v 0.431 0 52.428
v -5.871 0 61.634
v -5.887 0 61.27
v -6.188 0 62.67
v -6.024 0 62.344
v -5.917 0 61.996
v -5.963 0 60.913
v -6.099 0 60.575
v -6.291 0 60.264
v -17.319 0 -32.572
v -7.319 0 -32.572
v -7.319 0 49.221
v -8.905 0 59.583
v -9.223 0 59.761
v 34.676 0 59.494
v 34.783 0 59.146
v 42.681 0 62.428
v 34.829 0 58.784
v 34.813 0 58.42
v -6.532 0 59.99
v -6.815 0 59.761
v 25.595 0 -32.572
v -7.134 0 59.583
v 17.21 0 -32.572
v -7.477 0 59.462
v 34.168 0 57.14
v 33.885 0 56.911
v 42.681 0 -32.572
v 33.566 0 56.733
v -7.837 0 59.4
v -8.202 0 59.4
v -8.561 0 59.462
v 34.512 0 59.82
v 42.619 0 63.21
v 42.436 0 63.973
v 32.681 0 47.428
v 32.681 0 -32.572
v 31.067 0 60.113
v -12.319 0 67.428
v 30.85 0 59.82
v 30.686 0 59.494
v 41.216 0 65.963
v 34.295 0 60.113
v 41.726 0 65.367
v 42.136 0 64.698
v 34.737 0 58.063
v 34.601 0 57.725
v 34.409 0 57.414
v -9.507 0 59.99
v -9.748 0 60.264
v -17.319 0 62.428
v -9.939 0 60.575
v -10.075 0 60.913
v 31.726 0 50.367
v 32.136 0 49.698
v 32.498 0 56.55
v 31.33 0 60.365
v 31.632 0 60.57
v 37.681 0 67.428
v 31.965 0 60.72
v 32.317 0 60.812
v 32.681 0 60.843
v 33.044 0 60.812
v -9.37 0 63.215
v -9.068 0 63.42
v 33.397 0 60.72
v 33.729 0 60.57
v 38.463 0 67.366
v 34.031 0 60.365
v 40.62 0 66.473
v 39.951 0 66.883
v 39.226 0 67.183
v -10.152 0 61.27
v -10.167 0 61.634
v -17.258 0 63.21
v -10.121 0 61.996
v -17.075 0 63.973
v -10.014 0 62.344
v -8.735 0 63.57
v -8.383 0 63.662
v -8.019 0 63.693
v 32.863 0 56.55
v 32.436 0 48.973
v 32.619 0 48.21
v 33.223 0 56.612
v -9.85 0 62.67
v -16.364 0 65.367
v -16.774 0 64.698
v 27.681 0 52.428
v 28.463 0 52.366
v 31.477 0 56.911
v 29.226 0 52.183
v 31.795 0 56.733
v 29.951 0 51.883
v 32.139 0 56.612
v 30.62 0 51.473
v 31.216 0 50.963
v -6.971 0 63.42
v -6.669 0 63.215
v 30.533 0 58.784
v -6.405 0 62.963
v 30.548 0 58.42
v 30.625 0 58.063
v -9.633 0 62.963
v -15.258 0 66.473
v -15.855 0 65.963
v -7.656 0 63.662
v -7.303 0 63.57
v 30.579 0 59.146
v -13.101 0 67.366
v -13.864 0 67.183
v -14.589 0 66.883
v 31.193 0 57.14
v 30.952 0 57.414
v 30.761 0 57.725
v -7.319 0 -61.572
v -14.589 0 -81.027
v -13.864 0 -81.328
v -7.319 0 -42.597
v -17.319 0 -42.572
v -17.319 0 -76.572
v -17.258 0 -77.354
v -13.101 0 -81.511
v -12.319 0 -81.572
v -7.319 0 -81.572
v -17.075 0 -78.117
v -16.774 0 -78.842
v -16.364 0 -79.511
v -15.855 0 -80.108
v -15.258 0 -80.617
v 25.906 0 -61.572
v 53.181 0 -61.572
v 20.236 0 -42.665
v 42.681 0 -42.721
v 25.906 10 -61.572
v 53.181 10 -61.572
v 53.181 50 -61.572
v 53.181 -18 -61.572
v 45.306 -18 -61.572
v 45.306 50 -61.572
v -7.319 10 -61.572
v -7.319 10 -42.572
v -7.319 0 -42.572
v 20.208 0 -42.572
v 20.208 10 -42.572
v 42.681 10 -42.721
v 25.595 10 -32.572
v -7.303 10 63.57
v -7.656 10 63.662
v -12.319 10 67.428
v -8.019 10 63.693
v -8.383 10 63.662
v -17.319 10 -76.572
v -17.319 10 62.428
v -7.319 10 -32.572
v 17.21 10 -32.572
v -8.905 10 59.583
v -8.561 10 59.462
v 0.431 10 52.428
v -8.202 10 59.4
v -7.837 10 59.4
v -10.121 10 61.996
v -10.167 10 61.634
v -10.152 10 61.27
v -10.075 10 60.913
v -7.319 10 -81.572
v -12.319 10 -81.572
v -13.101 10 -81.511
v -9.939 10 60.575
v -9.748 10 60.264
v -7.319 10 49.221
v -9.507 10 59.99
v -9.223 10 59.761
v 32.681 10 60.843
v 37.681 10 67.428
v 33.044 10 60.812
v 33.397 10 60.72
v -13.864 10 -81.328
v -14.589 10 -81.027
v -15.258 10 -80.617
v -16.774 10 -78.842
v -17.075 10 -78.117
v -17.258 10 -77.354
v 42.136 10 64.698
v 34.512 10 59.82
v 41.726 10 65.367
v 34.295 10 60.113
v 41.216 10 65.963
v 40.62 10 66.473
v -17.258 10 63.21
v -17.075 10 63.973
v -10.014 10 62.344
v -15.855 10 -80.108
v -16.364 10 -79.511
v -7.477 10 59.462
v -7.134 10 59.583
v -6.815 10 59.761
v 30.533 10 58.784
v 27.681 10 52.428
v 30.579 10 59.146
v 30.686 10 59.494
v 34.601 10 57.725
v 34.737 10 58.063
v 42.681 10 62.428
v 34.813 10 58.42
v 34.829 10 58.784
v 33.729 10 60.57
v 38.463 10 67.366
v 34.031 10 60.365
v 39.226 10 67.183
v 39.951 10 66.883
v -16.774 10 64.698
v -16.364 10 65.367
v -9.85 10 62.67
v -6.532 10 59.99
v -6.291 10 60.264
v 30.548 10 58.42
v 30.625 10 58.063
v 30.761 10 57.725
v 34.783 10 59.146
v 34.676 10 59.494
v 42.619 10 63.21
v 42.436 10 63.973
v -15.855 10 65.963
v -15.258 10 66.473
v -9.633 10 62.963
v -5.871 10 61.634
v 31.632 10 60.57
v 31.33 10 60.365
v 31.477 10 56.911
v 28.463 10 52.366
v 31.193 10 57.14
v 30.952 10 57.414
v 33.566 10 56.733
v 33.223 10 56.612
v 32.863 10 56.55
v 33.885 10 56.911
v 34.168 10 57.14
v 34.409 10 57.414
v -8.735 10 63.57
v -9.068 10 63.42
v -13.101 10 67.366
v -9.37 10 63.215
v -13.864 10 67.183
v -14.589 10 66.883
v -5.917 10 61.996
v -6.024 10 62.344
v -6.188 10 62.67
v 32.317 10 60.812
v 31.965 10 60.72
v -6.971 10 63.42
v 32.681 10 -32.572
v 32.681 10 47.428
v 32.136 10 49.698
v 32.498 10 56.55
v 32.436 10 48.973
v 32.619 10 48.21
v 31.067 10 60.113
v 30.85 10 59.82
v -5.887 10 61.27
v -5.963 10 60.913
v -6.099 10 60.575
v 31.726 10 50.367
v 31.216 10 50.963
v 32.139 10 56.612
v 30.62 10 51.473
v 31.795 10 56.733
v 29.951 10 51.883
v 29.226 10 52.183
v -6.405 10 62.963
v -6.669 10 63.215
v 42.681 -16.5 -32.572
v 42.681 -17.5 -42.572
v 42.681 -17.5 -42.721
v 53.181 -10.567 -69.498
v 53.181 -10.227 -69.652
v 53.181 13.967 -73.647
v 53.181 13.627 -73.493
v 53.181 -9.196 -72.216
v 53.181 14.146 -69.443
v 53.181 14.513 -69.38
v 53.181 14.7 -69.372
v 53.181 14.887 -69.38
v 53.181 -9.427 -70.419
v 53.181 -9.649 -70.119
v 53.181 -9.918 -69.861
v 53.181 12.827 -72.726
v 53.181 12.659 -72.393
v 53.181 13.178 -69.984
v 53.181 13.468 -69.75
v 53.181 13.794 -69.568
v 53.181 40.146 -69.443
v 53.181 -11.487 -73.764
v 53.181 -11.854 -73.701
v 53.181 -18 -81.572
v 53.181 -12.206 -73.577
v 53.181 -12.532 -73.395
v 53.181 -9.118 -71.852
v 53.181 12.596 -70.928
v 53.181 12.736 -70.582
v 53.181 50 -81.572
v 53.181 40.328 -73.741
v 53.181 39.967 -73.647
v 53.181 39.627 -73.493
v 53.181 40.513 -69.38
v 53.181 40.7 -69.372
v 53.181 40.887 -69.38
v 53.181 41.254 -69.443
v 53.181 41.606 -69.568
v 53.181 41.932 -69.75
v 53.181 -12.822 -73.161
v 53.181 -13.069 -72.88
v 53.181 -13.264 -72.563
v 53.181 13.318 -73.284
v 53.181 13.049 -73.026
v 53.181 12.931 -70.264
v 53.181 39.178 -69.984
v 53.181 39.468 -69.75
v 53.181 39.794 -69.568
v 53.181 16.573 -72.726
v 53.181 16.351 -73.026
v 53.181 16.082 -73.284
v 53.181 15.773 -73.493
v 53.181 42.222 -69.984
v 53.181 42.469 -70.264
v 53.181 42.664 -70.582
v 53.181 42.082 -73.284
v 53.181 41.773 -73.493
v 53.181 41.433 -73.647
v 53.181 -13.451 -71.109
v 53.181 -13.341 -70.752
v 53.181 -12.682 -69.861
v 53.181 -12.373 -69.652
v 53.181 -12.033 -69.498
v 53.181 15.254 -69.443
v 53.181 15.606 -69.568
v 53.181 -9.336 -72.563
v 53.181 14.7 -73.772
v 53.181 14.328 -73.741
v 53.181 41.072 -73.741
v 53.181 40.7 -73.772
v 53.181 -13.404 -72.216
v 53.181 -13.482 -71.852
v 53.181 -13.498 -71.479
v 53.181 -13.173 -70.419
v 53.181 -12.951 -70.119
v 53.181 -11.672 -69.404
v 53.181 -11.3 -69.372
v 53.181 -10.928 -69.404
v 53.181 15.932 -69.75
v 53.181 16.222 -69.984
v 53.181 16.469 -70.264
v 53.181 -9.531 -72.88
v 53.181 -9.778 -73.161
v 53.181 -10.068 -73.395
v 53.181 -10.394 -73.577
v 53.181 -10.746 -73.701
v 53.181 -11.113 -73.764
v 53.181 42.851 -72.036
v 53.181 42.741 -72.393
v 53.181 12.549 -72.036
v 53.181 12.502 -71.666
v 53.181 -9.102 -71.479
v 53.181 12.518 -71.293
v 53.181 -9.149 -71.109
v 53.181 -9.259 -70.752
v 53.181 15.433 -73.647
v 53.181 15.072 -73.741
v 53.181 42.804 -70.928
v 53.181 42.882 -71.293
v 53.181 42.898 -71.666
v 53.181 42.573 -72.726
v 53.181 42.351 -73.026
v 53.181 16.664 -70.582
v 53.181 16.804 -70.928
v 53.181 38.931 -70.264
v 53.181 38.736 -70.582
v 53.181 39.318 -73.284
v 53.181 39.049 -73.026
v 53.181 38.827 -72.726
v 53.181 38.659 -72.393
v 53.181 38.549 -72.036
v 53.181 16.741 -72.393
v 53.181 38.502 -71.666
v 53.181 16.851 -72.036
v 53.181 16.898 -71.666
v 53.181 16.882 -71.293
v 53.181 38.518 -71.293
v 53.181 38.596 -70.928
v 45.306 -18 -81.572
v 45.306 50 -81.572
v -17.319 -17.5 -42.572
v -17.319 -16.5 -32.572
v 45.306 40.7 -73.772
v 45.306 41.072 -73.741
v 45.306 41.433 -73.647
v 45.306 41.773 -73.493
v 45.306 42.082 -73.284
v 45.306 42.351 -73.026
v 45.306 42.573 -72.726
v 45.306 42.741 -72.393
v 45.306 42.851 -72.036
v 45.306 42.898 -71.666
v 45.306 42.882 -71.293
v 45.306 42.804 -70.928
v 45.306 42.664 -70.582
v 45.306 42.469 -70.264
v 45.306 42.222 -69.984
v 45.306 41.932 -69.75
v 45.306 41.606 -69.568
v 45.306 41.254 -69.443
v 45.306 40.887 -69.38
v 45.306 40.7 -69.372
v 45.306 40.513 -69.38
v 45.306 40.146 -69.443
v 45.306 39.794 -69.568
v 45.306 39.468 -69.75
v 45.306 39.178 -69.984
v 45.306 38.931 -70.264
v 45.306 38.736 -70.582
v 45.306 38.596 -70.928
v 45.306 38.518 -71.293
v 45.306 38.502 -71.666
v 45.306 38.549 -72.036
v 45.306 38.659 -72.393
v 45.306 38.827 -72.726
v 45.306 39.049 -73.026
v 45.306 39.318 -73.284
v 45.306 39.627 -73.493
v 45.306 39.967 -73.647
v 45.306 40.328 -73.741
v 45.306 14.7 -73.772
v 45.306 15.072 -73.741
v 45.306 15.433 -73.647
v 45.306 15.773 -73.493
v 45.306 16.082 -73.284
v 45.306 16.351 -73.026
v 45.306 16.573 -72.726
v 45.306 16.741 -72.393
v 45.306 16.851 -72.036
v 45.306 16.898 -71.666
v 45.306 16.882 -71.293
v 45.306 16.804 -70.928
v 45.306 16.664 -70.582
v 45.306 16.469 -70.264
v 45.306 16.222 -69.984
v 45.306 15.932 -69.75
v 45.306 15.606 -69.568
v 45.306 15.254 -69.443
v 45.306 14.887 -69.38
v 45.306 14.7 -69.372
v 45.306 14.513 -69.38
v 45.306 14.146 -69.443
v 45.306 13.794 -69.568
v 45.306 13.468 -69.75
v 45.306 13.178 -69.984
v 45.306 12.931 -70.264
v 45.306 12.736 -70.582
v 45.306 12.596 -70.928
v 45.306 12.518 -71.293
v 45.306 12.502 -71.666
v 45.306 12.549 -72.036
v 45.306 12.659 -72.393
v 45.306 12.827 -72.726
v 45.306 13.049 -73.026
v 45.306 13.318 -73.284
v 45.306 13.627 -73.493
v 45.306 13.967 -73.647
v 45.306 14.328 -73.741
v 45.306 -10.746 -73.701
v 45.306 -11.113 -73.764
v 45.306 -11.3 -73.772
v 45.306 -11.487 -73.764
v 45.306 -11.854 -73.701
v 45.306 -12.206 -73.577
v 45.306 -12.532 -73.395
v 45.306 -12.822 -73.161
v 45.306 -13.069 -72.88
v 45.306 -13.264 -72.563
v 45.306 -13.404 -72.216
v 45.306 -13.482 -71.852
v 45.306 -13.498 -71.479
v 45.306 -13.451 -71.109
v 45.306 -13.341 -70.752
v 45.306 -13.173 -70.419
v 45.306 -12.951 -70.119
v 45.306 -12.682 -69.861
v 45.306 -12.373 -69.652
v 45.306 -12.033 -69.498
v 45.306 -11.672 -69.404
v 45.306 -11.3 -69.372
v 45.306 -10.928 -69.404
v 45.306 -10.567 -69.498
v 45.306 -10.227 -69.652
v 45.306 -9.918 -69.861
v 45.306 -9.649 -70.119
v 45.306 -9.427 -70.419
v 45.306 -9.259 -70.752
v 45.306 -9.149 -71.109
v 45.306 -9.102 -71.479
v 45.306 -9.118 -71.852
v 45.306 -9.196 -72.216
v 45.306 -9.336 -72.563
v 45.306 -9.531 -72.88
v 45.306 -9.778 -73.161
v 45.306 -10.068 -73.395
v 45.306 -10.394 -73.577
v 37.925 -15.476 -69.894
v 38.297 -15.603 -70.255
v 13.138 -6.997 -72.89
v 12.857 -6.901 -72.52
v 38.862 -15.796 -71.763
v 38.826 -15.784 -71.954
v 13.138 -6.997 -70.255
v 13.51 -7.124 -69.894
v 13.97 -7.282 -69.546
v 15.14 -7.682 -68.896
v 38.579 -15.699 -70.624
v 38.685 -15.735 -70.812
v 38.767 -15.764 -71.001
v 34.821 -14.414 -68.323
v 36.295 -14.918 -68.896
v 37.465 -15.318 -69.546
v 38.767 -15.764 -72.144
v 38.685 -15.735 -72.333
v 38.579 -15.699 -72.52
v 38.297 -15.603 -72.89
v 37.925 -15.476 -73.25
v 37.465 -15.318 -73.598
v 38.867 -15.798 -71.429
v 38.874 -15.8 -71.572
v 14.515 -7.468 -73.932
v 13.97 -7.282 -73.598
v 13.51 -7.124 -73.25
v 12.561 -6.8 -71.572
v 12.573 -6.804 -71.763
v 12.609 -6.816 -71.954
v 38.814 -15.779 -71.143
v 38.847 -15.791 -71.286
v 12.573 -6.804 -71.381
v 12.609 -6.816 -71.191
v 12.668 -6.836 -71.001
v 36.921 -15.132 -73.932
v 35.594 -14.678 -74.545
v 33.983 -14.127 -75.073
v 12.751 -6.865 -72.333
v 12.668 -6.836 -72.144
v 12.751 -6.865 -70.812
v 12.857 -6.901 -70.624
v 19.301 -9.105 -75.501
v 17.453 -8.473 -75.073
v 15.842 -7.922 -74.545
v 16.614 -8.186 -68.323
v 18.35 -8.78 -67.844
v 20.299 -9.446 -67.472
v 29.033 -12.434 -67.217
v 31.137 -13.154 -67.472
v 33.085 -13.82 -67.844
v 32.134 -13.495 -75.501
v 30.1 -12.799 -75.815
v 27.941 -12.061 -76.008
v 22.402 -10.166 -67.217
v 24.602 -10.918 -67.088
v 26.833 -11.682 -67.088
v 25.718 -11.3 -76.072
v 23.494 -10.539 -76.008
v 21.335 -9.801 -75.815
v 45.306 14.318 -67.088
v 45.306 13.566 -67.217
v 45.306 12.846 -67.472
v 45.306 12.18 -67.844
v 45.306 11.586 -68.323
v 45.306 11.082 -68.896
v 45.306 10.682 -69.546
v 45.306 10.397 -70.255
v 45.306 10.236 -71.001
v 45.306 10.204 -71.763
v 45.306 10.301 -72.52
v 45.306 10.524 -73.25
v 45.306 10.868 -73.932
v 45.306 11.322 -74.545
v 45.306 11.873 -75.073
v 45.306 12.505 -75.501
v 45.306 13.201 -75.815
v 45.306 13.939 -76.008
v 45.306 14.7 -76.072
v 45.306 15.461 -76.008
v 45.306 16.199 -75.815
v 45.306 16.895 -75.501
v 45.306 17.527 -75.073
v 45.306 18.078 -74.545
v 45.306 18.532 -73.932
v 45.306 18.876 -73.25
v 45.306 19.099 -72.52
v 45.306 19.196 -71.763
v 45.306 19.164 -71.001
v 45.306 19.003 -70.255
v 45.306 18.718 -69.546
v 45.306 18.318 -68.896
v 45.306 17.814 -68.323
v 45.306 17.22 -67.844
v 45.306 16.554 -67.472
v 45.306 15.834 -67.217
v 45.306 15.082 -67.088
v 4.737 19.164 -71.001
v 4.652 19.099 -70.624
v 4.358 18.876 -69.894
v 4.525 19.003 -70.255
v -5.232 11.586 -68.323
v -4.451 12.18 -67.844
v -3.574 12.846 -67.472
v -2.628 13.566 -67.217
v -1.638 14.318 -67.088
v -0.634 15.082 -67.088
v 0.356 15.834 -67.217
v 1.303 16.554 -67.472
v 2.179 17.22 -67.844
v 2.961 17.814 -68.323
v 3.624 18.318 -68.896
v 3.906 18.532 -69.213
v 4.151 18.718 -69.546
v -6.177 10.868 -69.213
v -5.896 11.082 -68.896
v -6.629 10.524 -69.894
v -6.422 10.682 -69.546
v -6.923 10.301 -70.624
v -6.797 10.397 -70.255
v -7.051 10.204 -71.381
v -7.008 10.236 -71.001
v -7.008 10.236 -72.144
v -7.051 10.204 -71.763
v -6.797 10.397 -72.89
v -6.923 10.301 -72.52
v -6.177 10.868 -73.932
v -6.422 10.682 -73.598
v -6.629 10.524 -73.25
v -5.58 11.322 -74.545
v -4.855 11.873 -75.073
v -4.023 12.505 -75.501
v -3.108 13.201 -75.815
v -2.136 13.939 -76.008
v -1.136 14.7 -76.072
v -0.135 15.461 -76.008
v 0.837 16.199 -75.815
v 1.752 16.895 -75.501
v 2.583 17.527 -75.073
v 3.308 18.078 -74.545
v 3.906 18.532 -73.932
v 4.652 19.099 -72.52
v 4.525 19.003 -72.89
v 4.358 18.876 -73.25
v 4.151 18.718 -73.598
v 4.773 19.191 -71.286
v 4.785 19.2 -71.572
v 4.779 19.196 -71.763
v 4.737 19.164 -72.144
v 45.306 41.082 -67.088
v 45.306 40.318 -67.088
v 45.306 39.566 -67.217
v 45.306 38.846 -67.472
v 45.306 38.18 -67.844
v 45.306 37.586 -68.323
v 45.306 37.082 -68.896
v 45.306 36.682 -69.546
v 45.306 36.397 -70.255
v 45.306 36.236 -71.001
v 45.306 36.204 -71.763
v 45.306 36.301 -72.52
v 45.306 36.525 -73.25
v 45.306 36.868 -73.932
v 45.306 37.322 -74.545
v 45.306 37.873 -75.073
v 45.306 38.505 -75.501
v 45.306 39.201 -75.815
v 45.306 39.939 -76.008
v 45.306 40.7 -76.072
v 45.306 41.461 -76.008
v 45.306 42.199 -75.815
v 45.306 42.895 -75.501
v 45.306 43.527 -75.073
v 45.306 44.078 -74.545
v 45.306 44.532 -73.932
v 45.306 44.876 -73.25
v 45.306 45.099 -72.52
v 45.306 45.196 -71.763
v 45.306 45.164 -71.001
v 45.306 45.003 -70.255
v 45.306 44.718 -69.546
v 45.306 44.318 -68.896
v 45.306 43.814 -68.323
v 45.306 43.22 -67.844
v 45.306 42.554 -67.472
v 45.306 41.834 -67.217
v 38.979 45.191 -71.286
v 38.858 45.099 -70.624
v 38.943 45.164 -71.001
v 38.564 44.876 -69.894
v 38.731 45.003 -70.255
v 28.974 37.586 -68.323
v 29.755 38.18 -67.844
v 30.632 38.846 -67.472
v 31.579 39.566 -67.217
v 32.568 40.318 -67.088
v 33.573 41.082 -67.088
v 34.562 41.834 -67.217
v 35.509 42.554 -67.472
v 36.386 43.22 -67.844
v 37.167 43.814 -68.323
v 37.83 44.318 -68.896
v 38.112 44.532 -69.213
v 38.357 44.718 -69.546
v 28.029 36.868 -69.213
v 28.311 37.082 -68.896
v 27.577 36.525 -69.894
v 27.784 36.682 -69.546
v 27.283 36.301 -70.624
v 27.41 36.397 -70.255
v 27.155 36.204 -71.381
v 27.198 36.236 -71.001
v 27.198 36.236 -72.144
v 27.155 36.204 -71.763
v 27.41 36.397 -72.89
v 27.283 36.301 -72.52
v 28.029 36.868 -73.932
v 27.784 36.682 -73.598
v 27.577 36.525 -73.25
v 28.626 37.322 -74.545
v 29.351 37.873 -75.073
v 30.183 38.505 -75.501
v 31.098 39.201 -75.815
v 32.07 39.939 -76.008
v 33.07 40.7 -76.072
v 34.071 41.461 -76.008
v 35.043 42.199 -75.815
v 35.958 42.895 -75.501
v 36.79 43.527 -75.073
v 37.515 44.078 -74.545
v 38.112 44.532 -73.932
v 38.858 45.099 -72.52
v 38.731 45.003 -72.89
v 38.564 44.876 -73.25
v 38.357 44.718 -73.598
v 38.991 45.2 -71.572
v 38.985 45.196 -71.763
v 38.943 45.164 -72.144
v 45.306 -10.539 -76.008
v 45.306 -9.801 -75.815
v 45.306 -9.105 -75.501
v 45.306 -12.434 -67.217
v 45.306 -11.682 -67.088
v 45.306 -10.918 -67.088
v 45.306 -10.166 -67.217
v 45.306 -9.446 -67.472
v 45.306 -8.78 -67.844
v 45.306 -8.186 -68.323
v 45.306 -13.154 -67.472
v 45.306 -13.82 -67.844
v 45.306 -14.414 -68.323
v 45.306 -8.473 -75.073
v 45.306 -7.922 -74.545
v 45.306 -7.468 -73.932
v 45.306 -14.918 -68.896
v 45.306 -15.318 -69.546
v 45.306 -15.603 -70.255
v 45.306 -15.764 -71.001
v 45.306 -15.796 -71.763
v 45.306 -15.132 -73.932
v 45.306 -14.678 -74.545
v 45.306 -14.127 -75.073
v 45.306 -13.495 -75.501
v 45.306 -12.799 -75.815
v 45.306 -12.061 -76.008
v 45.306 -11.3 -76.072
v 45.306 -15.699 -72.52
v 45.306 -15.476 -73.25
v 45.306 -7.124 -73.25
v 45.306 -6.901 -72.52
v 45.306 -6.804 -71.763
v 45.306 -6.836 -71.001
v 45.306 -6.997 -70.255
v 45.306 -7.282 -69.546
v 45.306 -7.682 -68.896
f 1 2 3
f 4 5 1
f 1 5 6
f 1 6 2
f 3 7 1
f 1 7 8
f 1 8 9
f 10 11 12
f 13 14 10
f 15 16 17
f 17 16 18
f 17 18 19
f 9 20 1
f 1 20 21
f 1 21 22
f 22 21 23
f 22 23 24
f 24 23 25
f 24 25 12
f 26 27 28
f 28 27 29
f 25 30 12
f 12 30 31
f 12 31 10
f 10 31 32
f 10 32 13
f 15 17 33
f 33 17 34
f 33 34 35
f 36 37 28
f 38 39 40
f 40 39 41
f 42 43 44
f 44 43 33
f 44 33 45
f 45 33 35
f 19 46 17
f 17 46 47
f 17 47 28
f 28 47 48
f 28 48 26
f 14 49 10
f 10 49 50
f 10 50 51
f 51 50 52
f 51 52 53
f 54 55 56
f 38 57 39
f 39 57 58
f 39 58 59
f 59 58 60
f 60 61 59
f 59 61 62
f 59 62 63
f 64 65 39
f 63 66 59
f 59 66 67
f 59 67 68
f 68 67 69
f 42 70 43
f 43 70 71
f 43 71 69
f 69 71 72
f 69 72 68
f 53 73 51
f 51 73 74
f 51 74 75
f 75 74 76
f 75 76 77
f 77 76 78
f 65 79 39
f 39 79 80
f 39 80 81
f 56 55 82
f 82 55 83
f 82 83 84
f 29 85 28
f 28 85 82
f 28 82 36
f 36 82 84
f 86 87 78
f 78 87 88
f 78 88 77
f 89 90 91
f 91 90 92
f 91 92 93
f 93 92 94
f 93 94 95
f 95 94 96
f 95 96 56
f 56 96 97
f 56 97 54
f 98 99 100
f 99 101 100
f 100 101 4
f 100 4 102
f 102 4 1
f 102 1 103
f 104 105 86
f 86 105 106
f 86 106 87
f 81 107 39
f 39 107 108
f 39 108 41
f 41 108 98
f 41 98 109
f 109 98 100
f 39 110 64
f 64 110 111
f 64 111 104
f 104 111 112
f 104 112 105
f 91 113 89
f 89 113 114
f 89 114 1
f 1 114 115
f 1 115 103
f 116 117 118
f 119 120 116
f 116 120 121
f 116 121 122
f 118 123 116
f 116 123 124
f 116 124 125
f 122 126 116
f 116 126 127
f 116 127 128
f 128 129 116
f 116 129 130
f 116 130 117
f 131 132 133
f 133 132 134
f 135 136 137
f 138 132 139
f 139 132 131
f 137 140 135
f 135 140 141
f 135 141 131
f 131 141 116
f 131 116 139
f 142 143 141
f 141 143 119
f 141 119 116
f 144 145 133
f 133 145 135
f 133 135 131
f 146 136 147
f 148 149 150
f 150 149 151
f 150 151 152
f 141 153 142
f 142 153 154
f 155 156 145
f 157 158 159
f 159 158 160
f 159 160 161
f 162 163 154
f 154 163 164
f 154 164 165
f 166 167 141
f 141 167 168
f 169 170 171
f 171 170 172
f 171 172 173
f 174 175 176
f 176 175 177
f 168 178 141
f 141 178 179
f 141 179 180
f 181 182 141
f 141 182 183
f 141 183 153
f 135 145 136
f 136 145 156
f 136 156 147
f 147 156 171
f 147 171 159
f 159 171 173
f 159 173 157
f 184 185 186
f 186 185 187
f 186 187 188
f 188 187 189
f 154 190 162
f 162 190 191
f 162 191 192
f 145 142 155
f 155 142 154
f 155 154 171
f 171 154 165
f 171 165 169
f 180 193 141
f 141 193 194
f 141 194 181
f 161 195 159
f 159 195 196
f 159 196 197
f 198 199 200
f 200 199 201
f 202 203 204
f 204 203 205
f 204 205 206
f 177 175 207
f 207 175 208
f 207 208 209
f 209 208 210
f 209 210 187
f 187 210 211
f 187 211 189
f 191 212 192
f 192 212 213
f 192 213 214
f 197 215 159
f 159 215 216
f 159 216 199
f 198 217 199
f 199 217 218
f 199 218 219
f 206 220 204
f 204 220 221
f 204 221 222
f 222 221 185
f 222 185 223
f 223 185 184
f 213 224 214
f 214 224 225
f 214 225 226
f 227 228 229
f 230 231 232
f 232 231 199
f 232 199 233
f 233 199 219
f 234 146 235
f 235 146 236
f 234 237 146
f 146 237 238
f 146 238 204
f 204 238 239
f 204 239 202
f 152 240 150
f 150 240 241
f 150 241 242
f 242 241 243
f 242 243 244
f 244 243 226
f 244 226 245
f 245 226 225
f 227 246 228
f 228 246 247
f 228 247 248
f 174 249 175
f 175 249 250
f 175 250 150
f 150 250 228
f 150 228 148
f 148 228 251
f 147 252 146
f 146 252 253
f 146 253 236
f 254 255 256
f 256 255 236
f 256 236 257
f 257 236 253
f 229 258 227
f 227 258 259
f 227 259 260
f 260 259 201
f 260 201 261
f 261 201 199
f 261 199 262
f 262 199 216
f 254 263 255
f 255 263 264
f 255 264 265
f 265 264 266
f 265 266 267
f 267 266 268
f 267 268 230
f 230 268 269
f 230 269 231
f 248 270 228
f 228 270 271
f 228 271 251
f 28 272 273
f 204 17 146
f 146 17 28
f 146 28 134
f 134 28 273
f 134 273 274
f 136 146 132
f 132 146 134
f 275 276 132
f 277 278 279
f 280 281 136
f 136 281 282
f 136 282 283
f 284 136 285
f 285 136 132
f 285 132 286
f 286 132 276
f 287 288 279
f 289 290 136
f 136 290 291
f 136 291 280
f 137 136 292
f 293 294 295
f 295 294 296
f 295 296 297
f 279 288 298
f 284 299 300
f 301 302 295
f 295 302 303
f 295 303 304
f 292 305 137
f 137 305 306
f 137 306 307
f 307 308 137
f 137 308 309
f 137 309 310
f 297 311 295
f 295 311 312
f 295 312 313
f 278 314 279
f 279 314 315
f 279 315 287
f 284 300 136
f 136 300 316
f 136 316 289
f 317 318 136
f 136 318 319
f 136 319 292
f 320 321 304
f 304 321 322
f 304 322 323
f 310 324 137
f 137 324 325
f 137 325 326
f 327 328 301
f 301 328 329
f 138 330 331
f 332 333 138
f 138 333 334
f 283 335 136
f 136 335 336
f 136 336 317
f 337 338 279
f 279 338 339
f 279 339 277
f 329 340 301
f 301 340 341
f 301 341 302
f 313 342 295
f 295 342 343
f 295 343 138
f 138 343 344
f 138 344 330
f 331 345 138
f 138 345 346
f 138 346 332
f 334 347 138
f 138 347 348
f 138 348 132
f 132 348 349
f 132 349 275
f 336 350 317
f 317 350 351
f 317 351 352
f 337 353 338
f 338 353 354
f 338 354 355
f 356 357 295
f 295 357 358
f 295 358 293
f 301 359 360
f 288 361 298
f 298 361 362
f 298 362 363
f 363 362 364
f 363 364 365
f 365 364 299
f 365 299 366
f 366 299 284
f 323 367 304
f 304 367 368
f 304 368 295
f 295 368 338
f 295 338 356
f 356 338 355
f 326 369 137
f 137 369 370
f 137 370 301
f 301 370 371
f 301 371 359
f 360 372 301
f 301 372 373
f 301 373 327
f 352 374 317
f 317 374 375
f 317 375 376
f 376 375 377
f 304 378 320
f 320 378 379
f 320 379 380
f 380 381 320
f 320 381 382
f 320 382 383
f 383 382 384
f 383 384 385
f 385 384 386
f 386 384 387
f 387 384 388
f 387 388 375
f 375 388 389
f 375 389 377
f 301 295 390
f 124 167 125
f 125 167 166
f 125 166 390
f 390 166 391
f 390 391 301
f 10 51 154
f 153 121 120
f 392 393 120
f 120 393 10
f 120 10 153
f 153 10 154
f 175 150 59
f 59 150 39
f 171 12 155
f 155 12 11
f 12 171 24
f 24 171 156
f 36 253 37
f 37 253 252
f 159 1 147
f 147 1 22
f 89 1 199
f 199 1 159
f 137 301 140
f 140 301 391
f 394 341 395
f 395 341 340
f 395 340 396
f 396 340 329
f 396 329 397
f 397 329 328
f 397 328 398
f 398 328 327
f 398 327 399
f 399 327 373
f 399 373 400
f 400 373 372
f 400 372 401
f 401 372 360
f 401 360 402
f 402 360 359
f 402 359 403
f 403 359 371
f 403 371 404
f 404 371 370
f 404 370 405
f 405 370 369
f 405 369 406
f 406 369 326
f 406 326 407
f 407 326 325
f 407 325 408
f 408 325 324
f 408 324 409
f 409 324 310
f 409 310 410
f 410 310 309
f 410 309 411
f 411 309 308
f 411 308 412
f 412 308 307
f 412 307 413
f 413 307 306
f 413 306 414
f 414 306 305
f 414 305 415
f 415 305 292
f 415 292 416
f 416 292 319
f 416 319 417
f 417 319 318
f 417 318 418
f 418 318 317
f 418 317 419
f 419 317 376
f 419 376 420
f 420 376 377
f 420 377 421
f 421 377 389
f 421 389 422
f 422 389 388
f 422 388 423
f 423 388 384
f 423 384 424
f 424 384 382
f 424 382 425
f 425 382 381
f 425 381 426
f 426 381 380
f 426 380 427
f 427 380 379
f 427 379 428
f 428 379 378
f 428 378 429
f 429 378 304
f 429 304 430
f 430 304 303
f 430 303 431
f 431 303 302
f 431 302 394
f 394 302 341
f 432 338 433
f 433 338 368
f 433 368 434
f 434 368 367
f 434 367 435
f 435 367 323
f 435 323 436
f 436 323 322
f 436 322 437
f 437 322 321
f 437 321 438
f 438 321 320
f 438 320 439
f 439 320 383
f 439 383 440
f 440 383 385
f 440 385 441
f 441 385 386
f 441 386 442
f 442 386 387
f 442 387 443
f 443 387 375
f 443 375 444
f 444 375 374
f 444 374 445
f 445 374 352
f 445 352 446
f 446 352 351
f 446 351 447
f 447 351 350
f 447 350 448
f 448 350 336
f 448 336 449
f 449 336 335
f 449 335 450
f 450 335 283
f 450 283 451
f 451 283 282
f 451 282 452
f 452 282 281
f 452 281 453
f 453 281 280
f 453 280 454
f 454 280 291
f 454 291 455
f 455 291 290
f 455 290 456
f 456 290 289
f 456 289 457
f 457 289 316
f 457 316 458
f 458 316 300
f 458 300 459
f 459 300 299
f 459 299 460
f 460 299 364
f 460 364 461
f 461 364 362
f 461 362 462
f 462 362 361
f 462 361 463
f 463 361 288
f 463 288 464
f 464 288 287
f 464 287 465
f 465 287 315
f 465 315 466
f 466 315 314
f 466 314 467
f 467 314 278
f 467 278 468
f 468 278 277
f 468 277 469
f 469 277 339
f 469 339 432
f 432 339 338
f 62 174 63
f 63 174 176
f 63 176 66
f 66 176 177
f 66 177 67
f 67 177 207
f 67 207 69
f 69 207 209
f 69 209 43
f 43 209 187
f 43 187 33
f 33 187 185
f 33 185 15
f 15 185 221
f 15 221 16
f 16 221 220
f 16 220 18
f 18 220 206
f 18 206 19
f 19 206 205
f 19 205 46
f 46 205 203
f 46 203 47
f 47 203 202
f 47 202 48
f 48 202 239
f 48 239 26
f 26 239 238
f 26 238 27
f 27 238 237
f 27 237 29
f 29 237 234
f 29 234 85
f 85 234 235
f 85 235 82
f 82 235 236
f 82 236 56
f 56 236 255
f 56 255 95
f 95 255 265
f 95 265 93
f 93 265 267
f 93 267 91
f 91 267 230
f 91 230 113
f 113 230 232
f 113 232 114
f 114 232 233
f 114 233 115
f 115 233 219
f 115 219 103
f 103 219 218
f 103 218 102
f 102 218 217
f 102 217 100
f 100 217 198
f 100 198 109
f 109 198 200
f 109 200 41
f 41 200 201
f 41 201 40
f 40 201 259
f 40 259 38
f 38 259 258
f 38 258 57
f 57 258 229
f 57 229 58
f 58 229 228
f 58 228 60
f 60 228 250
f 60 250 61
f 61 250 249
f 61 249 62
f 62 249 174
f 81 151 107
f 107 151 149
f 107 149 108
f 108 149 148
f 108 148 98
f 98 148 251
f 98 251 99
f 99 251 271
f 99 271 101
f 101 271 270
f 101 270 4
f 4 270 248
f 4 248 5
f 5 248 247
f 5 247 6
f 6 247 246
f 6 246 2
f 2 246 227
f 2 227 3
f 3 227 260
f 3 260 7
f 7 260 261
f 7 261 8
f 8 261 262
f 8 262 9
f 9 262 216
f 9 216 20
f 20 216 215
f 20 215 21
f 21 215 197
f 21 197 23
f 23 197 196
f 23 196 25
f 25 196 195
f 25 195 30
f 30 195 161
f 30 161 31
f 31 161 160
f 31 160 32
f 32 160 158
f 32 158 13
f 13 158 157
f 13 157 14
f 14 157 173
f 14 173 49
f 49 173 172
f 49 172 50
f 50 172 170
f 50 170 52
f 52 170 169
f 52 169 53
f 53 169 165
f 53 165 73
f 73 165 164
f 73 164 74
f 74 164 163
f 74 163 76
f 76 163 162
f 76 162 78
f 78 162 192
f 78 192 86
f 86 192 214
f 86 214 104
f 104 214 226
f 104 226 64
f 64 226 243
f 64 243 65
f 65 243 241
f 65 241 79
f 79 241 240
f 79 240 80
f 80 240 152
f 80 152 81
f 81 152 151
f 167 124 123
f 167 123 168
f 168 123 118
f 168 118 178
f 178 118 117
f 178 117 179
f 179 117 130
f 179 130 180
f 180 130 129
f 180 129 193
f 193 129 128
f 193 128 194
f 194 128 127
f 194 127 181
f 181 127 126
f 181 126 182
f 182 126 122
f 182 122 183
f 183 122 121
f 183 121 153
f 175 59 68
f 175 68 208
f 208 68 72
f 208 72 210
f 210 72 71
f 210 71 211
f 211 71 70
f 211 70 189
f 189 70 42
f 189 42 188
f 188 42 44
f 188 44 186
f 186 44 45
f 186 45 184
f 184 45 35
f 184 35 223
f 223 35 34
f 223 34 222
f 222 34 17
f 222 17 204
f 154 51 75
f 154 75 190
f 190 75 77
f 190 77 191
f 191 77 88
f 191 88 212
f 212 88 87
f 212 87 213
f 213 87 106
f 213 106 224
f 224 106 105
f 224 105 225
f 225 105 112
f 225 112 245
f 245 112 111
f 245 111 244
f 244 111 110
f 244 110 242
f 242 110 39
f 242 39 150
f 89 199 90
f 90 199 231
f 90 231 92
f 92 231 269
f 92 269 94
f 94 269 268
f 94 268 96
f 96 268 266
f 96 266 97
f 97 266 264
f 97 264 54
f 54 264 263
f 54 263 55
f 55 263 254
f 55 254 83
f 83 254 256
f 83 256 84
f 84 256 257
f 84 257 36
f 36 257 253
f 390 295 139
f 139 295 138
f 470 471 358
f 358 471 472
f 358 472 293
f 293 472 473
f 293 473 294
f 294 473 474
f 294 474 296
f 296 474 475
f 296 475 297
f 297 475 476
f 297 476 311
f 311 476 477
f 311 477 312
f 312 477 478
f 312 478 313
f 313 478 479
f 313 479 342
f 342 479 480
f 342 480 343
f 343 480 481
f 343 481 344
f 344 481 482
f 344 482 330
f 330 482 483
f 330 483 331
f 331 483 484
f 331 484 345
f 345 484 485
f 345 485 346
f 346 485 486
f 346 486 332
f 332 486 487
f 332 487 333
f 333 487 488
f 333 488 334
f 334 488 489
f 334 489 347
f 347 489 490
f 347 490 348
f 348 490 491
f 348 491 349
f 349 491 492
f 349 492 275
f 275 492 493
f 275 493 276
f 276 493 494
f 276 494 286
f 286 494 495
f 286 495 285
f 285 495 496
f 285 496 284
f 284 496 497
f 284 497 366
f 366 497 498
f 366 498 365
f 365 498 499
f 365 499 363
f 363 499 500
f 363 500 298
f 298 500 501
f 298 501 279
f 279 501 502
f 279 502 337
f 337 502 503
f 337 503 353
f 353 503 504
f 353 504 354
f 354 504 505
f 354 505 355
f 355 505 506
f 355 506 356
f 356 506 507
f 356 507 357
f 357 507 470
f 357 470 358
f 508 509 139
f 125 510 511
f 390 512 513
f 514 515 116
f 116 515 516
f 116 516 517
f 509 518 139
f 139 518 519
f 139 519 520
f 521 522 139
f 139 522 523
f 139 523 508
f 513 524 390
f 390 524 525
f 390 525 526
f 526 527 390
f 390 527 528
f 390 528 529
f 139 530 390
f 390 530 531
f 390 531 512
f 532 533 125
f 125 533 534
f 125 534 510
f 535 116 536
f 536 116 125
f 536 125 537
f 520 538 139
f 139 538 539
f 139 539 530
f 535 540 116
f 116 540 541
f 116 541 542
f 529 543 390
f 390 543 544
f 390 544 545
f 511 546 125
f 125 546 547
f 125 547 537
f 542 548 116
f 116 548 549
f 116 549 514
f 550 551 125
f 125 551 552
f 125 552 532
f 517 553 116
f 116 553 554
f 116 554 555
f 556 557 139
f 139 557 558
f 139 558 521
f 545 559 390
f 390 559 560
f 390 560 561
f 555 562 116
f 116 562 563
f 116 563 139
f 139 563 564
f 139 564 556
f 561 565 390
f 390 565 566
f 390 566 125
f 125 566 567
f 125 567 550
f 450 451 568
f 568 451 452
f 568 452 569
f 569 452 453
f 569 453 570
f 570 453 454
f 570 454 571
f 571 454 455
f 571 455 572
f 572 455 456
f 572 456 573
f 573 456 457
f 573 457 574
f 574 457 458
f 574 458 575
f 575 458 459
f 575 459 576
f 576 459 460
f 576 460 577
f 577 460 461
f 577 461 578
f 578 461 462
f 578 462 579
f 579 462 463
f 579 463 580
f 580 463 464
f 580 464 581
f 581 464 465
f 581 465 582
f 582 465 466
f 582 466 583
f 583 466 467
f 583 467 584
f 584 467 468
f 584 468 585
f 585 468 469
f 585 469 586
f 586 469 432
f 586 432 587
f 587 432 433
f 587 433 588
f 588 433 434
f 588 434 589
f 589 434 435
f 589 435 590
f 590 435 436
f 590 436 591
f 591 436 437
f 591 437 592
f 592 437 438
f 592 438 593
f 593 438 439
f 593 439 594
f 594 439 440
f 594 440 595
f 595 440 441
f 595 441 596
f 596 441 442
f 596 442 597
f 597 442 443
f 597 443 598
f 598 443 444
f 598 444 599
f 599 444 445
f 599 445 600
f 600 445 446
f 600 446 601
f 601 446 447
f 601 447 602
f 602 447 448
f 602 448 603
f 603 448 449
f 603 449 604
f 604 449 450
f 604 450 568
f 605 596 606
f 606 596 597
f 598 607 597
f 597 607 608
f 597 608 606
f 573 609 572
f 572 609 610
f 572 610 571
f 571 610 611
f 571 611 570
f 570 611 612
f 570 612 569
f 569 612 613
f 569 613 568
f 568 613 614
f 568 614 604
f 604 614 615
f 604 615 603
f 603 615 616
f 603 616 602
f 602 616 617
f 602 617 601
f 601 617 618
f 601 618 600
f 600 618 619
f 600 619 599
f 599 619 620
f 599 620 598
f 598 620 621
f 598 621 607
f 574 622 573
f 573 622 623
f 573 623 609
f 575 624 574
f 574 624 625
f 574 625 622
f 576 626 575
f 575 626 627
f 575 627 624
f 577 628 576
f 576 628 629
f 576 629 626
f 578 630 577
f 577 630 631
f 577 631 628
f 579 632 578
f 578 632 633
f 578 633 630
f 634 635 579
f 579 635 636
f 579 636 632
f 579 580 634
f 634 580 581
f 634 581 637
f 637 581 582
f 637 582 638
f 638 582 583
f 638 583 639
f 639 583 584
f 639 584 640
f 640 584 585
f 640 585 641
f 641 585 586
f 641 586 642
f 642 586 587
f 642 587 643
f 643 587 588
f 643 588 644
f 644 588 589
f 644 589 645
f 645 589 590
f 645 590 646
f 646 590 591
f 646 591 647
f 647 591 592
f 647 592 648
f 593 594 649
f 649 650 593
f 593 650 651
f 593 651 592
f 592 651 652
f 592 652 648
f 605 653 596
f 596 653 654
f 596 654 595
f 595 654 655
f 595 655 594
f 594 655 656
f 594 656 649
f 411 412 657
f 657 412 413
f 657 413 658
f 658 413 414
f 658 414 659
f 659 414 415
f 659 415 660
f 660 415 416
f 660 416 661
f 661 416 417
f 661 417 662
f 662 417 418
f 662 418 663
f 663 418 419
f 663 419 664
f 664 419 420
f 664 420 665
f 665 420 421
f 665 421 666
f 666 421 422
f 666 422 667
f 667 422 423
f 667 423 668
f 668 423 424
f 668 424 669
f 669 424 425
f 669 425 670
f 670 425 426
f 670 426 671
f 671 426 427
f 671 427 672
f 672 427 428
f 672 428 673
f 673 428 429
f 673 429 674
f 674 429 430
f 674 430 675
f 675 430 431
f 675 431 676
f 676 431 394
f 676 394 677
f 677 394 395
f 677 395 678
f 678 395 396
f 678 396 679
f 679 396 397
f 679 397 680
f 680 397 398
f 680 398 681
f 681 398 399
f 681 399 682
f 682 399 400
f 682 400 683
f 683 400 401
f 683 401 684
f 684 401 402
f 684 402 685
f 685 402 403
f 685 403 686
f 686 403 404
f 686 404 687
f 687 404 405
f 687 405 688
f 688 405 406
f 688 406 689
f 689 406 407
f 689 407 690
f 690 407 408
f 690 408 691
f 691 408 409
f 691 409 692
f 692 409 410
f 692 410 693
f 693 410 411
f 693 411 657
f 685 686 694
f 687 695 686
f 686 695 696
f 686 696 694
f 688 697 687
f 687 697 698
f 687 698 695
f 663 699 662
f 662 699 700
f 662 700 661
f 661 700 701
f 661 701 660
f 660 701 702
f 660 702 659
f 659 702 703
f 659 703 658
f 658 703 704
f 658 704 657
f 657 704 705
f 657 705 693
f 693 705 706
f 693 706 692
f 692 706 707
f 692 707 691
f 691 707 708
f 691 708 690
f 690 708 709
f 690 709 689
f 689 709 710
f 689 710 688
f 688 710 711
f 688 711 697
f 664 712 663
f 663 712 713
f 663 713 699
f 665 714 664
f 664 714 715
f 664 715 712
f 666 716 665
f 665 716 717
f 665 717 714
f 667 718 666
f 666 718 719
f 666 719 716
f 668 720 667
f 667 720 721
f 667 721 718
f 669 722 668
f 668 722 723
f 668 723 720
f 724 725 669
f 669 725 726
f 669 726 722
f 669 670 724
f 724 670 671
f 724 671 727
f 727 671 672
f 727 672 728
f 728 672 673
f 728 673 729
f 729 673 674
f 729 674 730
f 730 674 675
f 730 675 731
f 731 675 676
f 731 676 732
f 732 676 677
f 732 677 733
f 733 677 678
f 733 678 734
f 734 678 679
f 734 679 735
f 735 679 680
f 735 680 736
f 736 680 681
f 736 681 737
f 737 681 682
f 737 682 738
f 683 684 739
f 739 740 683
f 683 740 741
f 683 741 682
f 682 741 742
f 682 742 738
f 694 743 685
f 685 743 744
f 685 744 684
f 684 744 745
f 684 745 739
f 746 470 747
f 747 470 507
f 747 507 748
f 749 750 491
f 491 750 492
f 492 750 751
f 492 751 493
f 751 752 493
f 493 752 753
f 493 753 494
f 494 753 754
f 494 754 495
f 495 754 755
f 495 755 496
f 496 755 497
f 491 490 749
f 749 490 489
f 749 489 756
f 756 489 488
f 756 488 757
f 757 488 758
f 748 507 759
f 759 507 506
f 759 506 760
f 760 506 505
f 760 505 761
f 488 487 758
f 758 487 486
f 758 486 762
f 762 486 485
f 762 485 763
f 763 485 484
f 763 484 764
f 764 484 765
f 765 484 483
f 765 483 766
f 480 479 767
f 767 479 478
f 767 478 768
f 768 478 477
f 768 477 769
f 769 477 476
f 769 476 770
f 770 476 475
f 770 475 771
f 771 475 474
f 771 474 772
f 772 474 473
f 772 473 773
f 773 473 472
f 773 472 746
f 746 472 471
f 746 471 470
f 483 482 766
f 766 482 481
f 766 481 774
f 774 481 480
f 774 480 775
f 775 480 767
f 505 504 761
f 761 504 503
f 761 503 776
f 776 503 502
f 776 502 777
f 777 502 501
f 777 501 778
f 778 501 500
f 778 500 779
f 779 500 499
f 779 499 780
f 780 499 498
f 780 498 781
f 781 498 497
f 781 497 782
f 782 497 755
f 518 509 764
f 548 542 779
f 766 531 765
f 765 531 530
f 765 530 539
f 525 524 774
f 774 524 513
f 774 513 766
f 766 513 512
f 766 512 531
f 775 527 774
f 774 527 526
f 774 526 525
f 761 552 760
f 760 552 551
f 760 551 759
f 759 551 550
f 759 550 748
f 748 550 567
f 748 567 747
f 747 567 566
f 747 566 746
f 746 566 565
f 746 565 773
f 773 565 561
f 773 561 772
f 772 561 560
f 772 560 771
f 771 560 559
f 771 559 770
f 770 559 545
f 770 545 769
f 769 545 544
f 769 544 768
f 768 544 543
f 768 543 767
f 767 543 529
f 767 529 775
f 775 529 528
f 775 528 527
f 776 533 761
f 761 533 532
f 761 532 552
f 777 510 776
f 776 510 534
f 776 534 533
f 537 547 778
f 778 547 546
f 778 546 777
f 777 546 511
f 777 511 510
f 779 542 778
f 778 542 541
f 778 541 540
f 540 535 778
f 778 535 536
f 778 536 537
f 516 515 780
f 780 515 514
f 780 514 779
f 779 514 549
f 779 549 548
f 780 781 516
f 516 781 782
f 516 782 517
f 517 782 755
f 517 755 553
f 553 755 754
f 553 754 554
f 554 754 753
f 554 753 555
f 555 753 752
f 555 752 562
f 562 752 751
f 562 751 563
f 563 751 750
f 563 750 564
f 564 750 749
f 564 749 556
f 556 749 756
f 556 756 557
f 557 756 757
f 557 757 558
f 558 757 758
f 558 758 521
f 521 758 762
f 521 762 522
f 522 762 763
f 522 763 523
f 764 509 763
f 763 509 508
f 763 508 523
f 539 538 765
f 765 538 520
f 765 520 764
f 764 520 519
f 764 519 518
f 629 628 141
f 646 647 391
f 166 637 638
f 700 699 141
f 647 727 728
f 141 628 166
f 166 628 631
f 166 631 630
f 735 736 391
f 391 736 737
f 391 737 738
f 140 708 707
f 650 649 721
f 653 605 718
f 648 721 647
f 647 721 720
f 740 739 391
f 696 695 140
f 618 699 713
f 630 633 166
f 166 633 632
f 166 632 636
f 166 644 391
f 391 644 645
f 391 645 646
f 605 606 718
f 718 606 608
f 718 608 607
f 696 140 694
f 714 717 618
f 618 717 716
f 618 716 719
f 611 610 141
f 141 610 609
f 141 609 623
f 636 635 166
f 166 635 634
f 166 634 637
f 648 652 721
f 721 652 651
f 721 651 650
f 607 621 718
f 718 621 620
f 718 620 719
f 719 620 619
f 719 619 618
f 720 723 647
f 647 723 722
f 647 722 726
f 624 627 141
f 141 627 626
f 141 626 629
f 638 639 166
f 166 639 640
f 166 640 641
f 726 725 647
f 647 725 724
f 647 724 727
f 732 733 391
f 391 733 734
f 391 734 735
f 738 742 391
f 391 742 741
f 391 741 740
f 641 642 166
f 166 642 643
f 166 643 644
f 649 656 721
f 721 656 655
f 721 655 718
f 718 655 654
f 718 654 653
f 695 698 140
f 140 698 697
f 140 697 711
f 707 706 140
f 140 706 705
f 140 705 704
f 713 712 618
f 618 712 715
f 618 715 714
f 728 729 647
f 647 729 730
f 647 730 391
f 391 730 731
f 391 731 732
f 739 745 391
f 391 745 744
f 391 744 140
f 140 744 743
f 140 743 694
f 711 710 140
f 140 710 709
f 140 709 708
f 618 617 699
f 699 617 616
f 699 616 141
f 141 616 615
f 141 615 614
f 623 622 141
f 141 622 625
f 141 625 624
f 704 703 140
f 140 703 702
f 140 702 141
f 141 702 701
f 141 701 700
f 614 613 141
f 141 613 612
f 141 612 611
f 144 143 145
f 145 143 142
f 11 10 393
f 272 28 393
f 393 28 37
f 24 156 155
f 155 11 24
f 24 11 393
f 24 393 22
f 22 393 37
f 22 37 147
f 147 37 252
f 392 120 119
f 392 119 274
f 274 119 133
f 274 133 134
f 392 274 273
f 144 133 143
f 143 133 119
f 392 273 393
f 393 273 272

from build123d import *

# Parameters (mm, degrees)
EXTRUDE_1_DEPTH                 = 10
SKETCH_4_W                      = 7.875
SKETCH_4_H                      = 20
EXTRUDE_2_DEPTH                 = 40
CUT_EXTRUDE_1_REACH             = 116.35
SKETCH_5_R                      = 2.2
CUT_EXTRUDE_1_DIRECTION_2_DEPTH = 53
CUT_EXTRUDE_2_REACH             = 107.272
SKETCH_6_R                      = 2.15
FILLET_1_R                      = 5
FILLET_2_R                      = 5
SKETCH_7_W                      = 7.875
SKETCH_7_H                      = 20
EXTRUDE_3_DEPTH                 = 18
CUT_EXTRUDE_3_REACH             = 116.35
SKETCH_8_R                      = 2.2
EXTRUDE_8_DEPTH                 = 20
SKETCH_15_W                     = 52.625
SKETCH_15_H                     = 20
EXTRUDE_9_DEPTH                 = 40
CUT_EXTRUDE_START               = -7.875
SKETCH_14_R                     = 4.5
CUT_EXTRUDE_8_DEPTH             = 54
CUT_EXTRUDE_10_DEPTH            = 20
EXTRUDE_10_DEPTH                = 10
EXTRUDE_11_DEPTH                = 17.5
CUT_EXTRUDE_11_DEPTH            = 64


with BuildPart() as part:
    # 草图1 → 凸台-拉伸1 (new body)
    with BuildSketch(Plane(origin=(0, 0, 0), x_dir=(1, 0, 0), z_dir=(0, 1, 0))):
        Polygon((5.931150433, 81.572237736), (53.180774799, 81.572237736), (53.180774799, 61.572237736), (42.680774799, 42.721022935), (42.680774799, 31.757290204), (42.680774799, -57.600660719), (42.680774799, -67.427762264), (0.431150433, -67.427762264), (-17.319225201, -67.427762264), (-17.319225201, 81.572237736), align=None)
        Polygon((47.930774799, 61.572237736), (42.680774799, 61.572237736), (42.680774799, 52.689495612), align=None, mode=Mode.SUBTRACT)
        Polygon((25.906315323, 61.572237736), (-7.319225201, 61.572237736), (-7.319225201, -49.220735683), align=None, mode=Mode.SUBTRACT)
        Polygon((0.431150433, -52.427762264), (32.680774799, -52.427762264), (32.680774799, 56.508121895), align=None, mode=Mode.SUBTRACT)
    extrude(amount=EXTRUDE_1_DEPTH)

    # 草图4 → 凸台-拉伸2 (add)
    with BuildSketch(Plane(origin=(0, 10, 0), x_dir=(1, 0, 0), z_dir=(0, 1, 0))):
        with Locations((49.243274799, 71.572237736)):
            Rectangle(SKETCH_4_W, SKETCH_4_H)
    extrude(amount=EXTRUDE_2_DEPTH)

    # 草图5 → 切除-拉伸1 (cut, up to next)
    with BuildSketch(Plane.ZY.offset(-45.305774799), mode=Mode.PRIVATE) as cut_extrude_1_sk1:
        with Locations(Location((-71.572237736, 14.7, 0), (0, 0, 180))):
            Circle(SKETCH_5_R)
    cut_extrude_1_tool1 = extrude(cut_extrude_1_sk1.sketch, amount=-CUT_EXTRUDE_1_REACH, mode=Mode.PRIVATE) & part.part
    # 草图5 → 切除-拉伸1 (cut, up to next)
    with BuildSketch(Plane.ZY.offset(-45.305774799), mode=Mode.PRIVATE) as cut_extrude_1_sk2:
        with Locations(Location((-71.572237736, 40.7, 0), (0, 0, 180))):
            Circle(SKETCH_5_R)
    cut_extrude_1_tool2 = extrude(cut_extrude_1_sk2.sketch, amount=-CUT_EXTRUDE_1_REACH, mode=Mode.PRIVATE) & part.part
    add(cut_extrude_1_tool1.solids().sort_by_distance((45.305775, 14.7, -71.572238))[0], mode=Mode.SUBTRACT)
    add(cut_extrude_1_tool2.solids().sort_by_distance((45.305775, 40.7, -71.572238))[0], mode=Mode.SUBTRACT)

    # 草图5 → 切除-拉伸1 direction 2 (cut)
    with BuildSketch(Plane.ZY.offset(-45.305774799)):
        with Locations(Location((-71.572237736, 14.7, 0), (0, 0, 180))):
            Circle(SKETCH_5_R)
        with Locations(Location((-71.572237736, 40.7, 0), (0, 0, 180))):
            Circle(SKETCH_5_R)
    extrude(amount=CUT_EXTRUDE_1_DIRECTION_2_DEPTH, mode=Mode.SUBTRACT)

    # 草图6 → 切除-拉伸2 (cut, up to next)
    with BuildSketch(Plane(origin=(0, 10, 0), x_dir=(1, 0, 0), z_dir=(0, 1, 0)), mode=Mode.PRIVATE) as cut_extrude_2_sk1:
        with Locations(Location((-8.019225201, -61.542634482, 0), (0, 0, 270))):
            Circle(SKETCH_6_R)
    cut_extrude_2_tool1 = extrude(cut_extrude_2_sk1.sketch, amount=-CUT_EXTRUDE_2_REACH, mode=Mode.PRIVATE) & part.part
    # 草图6 → 切除-拉伸2 (cut, up to next)
    with BuildSketch(Plane(origin=(0, 10, 0), x_dir=(1, 0, 0), z_dir=(0, 1, 0)), mode=Mode.PRIVATE) as cut_extrude_2_sk2:
        with Locations(Location((32.680774799, -58.692634482, 0), (0, 0, 270))):
            Circle(SKETCH_6_R)
    cut_extrude_2_tool2 = extrude(cut_extrude_2_sk2.sketch, amount=-CUT_EXTRUDE_2_REACH, mode=Mode.PRIVATE) & part.part
    add(cut_extrude_2_tool1.solids().sort_by_distance((-8.019225, 10, 61.542634))[0], mode=Mode.SUBTRACT)
    add(cut_extrude_2_tool2.solids().sort_by_distance((32.680775, 10, 58.692634))[0], mode=Mode.SUBTRACT)

    # 圆角1
    fillet_1_edges = [part.edges().sort_by_distance(p)[0] for p in [
        (-17.319225201, 5, 67.427762264),
        (-17.319225201, 5, -81.572237736),
        (42.680774799, 5, 67.427762264),
    ]]
    fillet(fillet_1_edges, radius=FILLET_1_R)

    # 圆角2
    fillet_2_edges = [part.edges().sort_by_distance(p)[0] for p in [
        (32.680774799, 5, 52.427762264),
    ]]
    fillet(fillet_2_edges, radius=FILLET_2_R)

    # 草图7 → 凸台-拉伸3 (add)
    with BuildSketch(Plane.XZ):
        with Locations((49.243274799, -71.572237736)):
            Rectangle(SKETCH_7_W, SKETCH_7_H)
    extrude(amount=EXTRUDE_3_DEPTH)

    # 草图8 → 切除-拉伸3 (cut, up to next)
    with BuildSketch(Plane.ZY.offset(-45.305774799), mode=Mode.PRIVATE) as cut_extrude_3_sk1:
        with Locations((-71.572237736, -11.3)):
            Circle(SKETCH_8_R)
    cut_extrude_3_tool1 = extrude(cut_extrude_3_sk1.sketch, amount=-CUT_EXTRUDE_3_REACH, mode=Mode.PRIVATE) & part.part
    add(cut_extrude_3_tool1.solids().sort_by_distance((45.305775, -11.3, -71.572238))[0], mode=Mode.SUBTRACT)

    # 草图13 → 凸台-拉伸8 (add)
    with BuildSketch(Plane.XY.offset(-61.572237736)):
        Polygon((45.305774799, 0), (45.305774799, -18), (-7.319225201, 0), align=None)
    extrude(amount=-EXTRUDE_8_DEPTH)

    # 草图15 → 凸台-拉伸9 (add)
    with BuildSketch(Plane(origin=(0, 10, 0), x_dir=(1, 0, 0), z_dir=(0, 1, 0))):
        with Locations((18.993274799, 71.572237736)):
            Rectangle(SKETCH_15_W, SKETCH_15_H)
    extrude(amount=EXTRUDE_9_DEPTH)

    # 草图14 → 切除-拉伸8 (cut)
    with BuildSketch(Plane(origin=(53.180774799, 0, 0), x_dir=(0, 0, -1), z_dir=(1, 0, 0)).offset(CUT_EXTRUDE_START)):
        with Locations((71.572237736, 40.7)):
            Circle(SKETCH_14_R)
        with Locations((71.572237736, 14.7)):
            Circle(SKETCH_14_R)
        with Locations((71.572237736, -11.3)):
            Circle(SKETCH_14_R)
    extrude(amount=-CUT_EXTRUDE_8_DEPTH, mode=Mode.SUBTRACT)

    # 草图17 → 切除-拉伸10 (cut)
    with BuildSketch(Plane.XY.offset(-61.572237736)):
        Polygon((-7.319225201, 10), (-7.319225201, 50), (45.305774799, 50), align=None)
    extrude(amount=-CUT_EXTRUDE_10_DEPTH, mode=Mode.SUBTRACT)

    # 草图18 → 凸台-拉伸10 (add)
    with BuildSketch(Plane(origin=(0, 10, 0), x_dir=(1, 0, 0), z_dir=(0, 1, 0))):
        Polygon((-7.319225201, 32.572237736), (17.209548321, 32.572237736), (20.208433494, 42.572237736), (-7.319225201, 42.572237736), align=None)
        Polygon((25.594741772, 32.572237736), (32.680774799, 32.572237736), (32.680774799, 56.508121895), align=None)
        Polygon((42.680774799, 61.572237736), (42.680774799, 52.689495612), (47.930774799, 61.572237736), align=None)
    extrude(amount=-EXTRUDE_10_DEPTH)

    # 草图19 → 凸台-拉伸11 (add)
    with BuildSketch(Plane.XZ):
        Polygon((-17.319225201, -32.572237736), (-17.319225201, -42.572237736), (42.680774799, -42.721022935), (42.680774799, -32.572237736), align=None)
    extrude(amount=EXTRUDE_11_DEPTH)

    # 草图20 → 切除-拉伸11 (cut)
    with BuildSketch(Plane.ZY.offset(17.319225201)):
        Polygon((-42.572237736, -17.5), (-32.572237736, -17.5), (-32.572237736, -16.5), align=None)
    extrude(amount=-CUT_EXTRUDE_11_DEPTH, mode=Mode.SUBTRACT)


solid = part.part
